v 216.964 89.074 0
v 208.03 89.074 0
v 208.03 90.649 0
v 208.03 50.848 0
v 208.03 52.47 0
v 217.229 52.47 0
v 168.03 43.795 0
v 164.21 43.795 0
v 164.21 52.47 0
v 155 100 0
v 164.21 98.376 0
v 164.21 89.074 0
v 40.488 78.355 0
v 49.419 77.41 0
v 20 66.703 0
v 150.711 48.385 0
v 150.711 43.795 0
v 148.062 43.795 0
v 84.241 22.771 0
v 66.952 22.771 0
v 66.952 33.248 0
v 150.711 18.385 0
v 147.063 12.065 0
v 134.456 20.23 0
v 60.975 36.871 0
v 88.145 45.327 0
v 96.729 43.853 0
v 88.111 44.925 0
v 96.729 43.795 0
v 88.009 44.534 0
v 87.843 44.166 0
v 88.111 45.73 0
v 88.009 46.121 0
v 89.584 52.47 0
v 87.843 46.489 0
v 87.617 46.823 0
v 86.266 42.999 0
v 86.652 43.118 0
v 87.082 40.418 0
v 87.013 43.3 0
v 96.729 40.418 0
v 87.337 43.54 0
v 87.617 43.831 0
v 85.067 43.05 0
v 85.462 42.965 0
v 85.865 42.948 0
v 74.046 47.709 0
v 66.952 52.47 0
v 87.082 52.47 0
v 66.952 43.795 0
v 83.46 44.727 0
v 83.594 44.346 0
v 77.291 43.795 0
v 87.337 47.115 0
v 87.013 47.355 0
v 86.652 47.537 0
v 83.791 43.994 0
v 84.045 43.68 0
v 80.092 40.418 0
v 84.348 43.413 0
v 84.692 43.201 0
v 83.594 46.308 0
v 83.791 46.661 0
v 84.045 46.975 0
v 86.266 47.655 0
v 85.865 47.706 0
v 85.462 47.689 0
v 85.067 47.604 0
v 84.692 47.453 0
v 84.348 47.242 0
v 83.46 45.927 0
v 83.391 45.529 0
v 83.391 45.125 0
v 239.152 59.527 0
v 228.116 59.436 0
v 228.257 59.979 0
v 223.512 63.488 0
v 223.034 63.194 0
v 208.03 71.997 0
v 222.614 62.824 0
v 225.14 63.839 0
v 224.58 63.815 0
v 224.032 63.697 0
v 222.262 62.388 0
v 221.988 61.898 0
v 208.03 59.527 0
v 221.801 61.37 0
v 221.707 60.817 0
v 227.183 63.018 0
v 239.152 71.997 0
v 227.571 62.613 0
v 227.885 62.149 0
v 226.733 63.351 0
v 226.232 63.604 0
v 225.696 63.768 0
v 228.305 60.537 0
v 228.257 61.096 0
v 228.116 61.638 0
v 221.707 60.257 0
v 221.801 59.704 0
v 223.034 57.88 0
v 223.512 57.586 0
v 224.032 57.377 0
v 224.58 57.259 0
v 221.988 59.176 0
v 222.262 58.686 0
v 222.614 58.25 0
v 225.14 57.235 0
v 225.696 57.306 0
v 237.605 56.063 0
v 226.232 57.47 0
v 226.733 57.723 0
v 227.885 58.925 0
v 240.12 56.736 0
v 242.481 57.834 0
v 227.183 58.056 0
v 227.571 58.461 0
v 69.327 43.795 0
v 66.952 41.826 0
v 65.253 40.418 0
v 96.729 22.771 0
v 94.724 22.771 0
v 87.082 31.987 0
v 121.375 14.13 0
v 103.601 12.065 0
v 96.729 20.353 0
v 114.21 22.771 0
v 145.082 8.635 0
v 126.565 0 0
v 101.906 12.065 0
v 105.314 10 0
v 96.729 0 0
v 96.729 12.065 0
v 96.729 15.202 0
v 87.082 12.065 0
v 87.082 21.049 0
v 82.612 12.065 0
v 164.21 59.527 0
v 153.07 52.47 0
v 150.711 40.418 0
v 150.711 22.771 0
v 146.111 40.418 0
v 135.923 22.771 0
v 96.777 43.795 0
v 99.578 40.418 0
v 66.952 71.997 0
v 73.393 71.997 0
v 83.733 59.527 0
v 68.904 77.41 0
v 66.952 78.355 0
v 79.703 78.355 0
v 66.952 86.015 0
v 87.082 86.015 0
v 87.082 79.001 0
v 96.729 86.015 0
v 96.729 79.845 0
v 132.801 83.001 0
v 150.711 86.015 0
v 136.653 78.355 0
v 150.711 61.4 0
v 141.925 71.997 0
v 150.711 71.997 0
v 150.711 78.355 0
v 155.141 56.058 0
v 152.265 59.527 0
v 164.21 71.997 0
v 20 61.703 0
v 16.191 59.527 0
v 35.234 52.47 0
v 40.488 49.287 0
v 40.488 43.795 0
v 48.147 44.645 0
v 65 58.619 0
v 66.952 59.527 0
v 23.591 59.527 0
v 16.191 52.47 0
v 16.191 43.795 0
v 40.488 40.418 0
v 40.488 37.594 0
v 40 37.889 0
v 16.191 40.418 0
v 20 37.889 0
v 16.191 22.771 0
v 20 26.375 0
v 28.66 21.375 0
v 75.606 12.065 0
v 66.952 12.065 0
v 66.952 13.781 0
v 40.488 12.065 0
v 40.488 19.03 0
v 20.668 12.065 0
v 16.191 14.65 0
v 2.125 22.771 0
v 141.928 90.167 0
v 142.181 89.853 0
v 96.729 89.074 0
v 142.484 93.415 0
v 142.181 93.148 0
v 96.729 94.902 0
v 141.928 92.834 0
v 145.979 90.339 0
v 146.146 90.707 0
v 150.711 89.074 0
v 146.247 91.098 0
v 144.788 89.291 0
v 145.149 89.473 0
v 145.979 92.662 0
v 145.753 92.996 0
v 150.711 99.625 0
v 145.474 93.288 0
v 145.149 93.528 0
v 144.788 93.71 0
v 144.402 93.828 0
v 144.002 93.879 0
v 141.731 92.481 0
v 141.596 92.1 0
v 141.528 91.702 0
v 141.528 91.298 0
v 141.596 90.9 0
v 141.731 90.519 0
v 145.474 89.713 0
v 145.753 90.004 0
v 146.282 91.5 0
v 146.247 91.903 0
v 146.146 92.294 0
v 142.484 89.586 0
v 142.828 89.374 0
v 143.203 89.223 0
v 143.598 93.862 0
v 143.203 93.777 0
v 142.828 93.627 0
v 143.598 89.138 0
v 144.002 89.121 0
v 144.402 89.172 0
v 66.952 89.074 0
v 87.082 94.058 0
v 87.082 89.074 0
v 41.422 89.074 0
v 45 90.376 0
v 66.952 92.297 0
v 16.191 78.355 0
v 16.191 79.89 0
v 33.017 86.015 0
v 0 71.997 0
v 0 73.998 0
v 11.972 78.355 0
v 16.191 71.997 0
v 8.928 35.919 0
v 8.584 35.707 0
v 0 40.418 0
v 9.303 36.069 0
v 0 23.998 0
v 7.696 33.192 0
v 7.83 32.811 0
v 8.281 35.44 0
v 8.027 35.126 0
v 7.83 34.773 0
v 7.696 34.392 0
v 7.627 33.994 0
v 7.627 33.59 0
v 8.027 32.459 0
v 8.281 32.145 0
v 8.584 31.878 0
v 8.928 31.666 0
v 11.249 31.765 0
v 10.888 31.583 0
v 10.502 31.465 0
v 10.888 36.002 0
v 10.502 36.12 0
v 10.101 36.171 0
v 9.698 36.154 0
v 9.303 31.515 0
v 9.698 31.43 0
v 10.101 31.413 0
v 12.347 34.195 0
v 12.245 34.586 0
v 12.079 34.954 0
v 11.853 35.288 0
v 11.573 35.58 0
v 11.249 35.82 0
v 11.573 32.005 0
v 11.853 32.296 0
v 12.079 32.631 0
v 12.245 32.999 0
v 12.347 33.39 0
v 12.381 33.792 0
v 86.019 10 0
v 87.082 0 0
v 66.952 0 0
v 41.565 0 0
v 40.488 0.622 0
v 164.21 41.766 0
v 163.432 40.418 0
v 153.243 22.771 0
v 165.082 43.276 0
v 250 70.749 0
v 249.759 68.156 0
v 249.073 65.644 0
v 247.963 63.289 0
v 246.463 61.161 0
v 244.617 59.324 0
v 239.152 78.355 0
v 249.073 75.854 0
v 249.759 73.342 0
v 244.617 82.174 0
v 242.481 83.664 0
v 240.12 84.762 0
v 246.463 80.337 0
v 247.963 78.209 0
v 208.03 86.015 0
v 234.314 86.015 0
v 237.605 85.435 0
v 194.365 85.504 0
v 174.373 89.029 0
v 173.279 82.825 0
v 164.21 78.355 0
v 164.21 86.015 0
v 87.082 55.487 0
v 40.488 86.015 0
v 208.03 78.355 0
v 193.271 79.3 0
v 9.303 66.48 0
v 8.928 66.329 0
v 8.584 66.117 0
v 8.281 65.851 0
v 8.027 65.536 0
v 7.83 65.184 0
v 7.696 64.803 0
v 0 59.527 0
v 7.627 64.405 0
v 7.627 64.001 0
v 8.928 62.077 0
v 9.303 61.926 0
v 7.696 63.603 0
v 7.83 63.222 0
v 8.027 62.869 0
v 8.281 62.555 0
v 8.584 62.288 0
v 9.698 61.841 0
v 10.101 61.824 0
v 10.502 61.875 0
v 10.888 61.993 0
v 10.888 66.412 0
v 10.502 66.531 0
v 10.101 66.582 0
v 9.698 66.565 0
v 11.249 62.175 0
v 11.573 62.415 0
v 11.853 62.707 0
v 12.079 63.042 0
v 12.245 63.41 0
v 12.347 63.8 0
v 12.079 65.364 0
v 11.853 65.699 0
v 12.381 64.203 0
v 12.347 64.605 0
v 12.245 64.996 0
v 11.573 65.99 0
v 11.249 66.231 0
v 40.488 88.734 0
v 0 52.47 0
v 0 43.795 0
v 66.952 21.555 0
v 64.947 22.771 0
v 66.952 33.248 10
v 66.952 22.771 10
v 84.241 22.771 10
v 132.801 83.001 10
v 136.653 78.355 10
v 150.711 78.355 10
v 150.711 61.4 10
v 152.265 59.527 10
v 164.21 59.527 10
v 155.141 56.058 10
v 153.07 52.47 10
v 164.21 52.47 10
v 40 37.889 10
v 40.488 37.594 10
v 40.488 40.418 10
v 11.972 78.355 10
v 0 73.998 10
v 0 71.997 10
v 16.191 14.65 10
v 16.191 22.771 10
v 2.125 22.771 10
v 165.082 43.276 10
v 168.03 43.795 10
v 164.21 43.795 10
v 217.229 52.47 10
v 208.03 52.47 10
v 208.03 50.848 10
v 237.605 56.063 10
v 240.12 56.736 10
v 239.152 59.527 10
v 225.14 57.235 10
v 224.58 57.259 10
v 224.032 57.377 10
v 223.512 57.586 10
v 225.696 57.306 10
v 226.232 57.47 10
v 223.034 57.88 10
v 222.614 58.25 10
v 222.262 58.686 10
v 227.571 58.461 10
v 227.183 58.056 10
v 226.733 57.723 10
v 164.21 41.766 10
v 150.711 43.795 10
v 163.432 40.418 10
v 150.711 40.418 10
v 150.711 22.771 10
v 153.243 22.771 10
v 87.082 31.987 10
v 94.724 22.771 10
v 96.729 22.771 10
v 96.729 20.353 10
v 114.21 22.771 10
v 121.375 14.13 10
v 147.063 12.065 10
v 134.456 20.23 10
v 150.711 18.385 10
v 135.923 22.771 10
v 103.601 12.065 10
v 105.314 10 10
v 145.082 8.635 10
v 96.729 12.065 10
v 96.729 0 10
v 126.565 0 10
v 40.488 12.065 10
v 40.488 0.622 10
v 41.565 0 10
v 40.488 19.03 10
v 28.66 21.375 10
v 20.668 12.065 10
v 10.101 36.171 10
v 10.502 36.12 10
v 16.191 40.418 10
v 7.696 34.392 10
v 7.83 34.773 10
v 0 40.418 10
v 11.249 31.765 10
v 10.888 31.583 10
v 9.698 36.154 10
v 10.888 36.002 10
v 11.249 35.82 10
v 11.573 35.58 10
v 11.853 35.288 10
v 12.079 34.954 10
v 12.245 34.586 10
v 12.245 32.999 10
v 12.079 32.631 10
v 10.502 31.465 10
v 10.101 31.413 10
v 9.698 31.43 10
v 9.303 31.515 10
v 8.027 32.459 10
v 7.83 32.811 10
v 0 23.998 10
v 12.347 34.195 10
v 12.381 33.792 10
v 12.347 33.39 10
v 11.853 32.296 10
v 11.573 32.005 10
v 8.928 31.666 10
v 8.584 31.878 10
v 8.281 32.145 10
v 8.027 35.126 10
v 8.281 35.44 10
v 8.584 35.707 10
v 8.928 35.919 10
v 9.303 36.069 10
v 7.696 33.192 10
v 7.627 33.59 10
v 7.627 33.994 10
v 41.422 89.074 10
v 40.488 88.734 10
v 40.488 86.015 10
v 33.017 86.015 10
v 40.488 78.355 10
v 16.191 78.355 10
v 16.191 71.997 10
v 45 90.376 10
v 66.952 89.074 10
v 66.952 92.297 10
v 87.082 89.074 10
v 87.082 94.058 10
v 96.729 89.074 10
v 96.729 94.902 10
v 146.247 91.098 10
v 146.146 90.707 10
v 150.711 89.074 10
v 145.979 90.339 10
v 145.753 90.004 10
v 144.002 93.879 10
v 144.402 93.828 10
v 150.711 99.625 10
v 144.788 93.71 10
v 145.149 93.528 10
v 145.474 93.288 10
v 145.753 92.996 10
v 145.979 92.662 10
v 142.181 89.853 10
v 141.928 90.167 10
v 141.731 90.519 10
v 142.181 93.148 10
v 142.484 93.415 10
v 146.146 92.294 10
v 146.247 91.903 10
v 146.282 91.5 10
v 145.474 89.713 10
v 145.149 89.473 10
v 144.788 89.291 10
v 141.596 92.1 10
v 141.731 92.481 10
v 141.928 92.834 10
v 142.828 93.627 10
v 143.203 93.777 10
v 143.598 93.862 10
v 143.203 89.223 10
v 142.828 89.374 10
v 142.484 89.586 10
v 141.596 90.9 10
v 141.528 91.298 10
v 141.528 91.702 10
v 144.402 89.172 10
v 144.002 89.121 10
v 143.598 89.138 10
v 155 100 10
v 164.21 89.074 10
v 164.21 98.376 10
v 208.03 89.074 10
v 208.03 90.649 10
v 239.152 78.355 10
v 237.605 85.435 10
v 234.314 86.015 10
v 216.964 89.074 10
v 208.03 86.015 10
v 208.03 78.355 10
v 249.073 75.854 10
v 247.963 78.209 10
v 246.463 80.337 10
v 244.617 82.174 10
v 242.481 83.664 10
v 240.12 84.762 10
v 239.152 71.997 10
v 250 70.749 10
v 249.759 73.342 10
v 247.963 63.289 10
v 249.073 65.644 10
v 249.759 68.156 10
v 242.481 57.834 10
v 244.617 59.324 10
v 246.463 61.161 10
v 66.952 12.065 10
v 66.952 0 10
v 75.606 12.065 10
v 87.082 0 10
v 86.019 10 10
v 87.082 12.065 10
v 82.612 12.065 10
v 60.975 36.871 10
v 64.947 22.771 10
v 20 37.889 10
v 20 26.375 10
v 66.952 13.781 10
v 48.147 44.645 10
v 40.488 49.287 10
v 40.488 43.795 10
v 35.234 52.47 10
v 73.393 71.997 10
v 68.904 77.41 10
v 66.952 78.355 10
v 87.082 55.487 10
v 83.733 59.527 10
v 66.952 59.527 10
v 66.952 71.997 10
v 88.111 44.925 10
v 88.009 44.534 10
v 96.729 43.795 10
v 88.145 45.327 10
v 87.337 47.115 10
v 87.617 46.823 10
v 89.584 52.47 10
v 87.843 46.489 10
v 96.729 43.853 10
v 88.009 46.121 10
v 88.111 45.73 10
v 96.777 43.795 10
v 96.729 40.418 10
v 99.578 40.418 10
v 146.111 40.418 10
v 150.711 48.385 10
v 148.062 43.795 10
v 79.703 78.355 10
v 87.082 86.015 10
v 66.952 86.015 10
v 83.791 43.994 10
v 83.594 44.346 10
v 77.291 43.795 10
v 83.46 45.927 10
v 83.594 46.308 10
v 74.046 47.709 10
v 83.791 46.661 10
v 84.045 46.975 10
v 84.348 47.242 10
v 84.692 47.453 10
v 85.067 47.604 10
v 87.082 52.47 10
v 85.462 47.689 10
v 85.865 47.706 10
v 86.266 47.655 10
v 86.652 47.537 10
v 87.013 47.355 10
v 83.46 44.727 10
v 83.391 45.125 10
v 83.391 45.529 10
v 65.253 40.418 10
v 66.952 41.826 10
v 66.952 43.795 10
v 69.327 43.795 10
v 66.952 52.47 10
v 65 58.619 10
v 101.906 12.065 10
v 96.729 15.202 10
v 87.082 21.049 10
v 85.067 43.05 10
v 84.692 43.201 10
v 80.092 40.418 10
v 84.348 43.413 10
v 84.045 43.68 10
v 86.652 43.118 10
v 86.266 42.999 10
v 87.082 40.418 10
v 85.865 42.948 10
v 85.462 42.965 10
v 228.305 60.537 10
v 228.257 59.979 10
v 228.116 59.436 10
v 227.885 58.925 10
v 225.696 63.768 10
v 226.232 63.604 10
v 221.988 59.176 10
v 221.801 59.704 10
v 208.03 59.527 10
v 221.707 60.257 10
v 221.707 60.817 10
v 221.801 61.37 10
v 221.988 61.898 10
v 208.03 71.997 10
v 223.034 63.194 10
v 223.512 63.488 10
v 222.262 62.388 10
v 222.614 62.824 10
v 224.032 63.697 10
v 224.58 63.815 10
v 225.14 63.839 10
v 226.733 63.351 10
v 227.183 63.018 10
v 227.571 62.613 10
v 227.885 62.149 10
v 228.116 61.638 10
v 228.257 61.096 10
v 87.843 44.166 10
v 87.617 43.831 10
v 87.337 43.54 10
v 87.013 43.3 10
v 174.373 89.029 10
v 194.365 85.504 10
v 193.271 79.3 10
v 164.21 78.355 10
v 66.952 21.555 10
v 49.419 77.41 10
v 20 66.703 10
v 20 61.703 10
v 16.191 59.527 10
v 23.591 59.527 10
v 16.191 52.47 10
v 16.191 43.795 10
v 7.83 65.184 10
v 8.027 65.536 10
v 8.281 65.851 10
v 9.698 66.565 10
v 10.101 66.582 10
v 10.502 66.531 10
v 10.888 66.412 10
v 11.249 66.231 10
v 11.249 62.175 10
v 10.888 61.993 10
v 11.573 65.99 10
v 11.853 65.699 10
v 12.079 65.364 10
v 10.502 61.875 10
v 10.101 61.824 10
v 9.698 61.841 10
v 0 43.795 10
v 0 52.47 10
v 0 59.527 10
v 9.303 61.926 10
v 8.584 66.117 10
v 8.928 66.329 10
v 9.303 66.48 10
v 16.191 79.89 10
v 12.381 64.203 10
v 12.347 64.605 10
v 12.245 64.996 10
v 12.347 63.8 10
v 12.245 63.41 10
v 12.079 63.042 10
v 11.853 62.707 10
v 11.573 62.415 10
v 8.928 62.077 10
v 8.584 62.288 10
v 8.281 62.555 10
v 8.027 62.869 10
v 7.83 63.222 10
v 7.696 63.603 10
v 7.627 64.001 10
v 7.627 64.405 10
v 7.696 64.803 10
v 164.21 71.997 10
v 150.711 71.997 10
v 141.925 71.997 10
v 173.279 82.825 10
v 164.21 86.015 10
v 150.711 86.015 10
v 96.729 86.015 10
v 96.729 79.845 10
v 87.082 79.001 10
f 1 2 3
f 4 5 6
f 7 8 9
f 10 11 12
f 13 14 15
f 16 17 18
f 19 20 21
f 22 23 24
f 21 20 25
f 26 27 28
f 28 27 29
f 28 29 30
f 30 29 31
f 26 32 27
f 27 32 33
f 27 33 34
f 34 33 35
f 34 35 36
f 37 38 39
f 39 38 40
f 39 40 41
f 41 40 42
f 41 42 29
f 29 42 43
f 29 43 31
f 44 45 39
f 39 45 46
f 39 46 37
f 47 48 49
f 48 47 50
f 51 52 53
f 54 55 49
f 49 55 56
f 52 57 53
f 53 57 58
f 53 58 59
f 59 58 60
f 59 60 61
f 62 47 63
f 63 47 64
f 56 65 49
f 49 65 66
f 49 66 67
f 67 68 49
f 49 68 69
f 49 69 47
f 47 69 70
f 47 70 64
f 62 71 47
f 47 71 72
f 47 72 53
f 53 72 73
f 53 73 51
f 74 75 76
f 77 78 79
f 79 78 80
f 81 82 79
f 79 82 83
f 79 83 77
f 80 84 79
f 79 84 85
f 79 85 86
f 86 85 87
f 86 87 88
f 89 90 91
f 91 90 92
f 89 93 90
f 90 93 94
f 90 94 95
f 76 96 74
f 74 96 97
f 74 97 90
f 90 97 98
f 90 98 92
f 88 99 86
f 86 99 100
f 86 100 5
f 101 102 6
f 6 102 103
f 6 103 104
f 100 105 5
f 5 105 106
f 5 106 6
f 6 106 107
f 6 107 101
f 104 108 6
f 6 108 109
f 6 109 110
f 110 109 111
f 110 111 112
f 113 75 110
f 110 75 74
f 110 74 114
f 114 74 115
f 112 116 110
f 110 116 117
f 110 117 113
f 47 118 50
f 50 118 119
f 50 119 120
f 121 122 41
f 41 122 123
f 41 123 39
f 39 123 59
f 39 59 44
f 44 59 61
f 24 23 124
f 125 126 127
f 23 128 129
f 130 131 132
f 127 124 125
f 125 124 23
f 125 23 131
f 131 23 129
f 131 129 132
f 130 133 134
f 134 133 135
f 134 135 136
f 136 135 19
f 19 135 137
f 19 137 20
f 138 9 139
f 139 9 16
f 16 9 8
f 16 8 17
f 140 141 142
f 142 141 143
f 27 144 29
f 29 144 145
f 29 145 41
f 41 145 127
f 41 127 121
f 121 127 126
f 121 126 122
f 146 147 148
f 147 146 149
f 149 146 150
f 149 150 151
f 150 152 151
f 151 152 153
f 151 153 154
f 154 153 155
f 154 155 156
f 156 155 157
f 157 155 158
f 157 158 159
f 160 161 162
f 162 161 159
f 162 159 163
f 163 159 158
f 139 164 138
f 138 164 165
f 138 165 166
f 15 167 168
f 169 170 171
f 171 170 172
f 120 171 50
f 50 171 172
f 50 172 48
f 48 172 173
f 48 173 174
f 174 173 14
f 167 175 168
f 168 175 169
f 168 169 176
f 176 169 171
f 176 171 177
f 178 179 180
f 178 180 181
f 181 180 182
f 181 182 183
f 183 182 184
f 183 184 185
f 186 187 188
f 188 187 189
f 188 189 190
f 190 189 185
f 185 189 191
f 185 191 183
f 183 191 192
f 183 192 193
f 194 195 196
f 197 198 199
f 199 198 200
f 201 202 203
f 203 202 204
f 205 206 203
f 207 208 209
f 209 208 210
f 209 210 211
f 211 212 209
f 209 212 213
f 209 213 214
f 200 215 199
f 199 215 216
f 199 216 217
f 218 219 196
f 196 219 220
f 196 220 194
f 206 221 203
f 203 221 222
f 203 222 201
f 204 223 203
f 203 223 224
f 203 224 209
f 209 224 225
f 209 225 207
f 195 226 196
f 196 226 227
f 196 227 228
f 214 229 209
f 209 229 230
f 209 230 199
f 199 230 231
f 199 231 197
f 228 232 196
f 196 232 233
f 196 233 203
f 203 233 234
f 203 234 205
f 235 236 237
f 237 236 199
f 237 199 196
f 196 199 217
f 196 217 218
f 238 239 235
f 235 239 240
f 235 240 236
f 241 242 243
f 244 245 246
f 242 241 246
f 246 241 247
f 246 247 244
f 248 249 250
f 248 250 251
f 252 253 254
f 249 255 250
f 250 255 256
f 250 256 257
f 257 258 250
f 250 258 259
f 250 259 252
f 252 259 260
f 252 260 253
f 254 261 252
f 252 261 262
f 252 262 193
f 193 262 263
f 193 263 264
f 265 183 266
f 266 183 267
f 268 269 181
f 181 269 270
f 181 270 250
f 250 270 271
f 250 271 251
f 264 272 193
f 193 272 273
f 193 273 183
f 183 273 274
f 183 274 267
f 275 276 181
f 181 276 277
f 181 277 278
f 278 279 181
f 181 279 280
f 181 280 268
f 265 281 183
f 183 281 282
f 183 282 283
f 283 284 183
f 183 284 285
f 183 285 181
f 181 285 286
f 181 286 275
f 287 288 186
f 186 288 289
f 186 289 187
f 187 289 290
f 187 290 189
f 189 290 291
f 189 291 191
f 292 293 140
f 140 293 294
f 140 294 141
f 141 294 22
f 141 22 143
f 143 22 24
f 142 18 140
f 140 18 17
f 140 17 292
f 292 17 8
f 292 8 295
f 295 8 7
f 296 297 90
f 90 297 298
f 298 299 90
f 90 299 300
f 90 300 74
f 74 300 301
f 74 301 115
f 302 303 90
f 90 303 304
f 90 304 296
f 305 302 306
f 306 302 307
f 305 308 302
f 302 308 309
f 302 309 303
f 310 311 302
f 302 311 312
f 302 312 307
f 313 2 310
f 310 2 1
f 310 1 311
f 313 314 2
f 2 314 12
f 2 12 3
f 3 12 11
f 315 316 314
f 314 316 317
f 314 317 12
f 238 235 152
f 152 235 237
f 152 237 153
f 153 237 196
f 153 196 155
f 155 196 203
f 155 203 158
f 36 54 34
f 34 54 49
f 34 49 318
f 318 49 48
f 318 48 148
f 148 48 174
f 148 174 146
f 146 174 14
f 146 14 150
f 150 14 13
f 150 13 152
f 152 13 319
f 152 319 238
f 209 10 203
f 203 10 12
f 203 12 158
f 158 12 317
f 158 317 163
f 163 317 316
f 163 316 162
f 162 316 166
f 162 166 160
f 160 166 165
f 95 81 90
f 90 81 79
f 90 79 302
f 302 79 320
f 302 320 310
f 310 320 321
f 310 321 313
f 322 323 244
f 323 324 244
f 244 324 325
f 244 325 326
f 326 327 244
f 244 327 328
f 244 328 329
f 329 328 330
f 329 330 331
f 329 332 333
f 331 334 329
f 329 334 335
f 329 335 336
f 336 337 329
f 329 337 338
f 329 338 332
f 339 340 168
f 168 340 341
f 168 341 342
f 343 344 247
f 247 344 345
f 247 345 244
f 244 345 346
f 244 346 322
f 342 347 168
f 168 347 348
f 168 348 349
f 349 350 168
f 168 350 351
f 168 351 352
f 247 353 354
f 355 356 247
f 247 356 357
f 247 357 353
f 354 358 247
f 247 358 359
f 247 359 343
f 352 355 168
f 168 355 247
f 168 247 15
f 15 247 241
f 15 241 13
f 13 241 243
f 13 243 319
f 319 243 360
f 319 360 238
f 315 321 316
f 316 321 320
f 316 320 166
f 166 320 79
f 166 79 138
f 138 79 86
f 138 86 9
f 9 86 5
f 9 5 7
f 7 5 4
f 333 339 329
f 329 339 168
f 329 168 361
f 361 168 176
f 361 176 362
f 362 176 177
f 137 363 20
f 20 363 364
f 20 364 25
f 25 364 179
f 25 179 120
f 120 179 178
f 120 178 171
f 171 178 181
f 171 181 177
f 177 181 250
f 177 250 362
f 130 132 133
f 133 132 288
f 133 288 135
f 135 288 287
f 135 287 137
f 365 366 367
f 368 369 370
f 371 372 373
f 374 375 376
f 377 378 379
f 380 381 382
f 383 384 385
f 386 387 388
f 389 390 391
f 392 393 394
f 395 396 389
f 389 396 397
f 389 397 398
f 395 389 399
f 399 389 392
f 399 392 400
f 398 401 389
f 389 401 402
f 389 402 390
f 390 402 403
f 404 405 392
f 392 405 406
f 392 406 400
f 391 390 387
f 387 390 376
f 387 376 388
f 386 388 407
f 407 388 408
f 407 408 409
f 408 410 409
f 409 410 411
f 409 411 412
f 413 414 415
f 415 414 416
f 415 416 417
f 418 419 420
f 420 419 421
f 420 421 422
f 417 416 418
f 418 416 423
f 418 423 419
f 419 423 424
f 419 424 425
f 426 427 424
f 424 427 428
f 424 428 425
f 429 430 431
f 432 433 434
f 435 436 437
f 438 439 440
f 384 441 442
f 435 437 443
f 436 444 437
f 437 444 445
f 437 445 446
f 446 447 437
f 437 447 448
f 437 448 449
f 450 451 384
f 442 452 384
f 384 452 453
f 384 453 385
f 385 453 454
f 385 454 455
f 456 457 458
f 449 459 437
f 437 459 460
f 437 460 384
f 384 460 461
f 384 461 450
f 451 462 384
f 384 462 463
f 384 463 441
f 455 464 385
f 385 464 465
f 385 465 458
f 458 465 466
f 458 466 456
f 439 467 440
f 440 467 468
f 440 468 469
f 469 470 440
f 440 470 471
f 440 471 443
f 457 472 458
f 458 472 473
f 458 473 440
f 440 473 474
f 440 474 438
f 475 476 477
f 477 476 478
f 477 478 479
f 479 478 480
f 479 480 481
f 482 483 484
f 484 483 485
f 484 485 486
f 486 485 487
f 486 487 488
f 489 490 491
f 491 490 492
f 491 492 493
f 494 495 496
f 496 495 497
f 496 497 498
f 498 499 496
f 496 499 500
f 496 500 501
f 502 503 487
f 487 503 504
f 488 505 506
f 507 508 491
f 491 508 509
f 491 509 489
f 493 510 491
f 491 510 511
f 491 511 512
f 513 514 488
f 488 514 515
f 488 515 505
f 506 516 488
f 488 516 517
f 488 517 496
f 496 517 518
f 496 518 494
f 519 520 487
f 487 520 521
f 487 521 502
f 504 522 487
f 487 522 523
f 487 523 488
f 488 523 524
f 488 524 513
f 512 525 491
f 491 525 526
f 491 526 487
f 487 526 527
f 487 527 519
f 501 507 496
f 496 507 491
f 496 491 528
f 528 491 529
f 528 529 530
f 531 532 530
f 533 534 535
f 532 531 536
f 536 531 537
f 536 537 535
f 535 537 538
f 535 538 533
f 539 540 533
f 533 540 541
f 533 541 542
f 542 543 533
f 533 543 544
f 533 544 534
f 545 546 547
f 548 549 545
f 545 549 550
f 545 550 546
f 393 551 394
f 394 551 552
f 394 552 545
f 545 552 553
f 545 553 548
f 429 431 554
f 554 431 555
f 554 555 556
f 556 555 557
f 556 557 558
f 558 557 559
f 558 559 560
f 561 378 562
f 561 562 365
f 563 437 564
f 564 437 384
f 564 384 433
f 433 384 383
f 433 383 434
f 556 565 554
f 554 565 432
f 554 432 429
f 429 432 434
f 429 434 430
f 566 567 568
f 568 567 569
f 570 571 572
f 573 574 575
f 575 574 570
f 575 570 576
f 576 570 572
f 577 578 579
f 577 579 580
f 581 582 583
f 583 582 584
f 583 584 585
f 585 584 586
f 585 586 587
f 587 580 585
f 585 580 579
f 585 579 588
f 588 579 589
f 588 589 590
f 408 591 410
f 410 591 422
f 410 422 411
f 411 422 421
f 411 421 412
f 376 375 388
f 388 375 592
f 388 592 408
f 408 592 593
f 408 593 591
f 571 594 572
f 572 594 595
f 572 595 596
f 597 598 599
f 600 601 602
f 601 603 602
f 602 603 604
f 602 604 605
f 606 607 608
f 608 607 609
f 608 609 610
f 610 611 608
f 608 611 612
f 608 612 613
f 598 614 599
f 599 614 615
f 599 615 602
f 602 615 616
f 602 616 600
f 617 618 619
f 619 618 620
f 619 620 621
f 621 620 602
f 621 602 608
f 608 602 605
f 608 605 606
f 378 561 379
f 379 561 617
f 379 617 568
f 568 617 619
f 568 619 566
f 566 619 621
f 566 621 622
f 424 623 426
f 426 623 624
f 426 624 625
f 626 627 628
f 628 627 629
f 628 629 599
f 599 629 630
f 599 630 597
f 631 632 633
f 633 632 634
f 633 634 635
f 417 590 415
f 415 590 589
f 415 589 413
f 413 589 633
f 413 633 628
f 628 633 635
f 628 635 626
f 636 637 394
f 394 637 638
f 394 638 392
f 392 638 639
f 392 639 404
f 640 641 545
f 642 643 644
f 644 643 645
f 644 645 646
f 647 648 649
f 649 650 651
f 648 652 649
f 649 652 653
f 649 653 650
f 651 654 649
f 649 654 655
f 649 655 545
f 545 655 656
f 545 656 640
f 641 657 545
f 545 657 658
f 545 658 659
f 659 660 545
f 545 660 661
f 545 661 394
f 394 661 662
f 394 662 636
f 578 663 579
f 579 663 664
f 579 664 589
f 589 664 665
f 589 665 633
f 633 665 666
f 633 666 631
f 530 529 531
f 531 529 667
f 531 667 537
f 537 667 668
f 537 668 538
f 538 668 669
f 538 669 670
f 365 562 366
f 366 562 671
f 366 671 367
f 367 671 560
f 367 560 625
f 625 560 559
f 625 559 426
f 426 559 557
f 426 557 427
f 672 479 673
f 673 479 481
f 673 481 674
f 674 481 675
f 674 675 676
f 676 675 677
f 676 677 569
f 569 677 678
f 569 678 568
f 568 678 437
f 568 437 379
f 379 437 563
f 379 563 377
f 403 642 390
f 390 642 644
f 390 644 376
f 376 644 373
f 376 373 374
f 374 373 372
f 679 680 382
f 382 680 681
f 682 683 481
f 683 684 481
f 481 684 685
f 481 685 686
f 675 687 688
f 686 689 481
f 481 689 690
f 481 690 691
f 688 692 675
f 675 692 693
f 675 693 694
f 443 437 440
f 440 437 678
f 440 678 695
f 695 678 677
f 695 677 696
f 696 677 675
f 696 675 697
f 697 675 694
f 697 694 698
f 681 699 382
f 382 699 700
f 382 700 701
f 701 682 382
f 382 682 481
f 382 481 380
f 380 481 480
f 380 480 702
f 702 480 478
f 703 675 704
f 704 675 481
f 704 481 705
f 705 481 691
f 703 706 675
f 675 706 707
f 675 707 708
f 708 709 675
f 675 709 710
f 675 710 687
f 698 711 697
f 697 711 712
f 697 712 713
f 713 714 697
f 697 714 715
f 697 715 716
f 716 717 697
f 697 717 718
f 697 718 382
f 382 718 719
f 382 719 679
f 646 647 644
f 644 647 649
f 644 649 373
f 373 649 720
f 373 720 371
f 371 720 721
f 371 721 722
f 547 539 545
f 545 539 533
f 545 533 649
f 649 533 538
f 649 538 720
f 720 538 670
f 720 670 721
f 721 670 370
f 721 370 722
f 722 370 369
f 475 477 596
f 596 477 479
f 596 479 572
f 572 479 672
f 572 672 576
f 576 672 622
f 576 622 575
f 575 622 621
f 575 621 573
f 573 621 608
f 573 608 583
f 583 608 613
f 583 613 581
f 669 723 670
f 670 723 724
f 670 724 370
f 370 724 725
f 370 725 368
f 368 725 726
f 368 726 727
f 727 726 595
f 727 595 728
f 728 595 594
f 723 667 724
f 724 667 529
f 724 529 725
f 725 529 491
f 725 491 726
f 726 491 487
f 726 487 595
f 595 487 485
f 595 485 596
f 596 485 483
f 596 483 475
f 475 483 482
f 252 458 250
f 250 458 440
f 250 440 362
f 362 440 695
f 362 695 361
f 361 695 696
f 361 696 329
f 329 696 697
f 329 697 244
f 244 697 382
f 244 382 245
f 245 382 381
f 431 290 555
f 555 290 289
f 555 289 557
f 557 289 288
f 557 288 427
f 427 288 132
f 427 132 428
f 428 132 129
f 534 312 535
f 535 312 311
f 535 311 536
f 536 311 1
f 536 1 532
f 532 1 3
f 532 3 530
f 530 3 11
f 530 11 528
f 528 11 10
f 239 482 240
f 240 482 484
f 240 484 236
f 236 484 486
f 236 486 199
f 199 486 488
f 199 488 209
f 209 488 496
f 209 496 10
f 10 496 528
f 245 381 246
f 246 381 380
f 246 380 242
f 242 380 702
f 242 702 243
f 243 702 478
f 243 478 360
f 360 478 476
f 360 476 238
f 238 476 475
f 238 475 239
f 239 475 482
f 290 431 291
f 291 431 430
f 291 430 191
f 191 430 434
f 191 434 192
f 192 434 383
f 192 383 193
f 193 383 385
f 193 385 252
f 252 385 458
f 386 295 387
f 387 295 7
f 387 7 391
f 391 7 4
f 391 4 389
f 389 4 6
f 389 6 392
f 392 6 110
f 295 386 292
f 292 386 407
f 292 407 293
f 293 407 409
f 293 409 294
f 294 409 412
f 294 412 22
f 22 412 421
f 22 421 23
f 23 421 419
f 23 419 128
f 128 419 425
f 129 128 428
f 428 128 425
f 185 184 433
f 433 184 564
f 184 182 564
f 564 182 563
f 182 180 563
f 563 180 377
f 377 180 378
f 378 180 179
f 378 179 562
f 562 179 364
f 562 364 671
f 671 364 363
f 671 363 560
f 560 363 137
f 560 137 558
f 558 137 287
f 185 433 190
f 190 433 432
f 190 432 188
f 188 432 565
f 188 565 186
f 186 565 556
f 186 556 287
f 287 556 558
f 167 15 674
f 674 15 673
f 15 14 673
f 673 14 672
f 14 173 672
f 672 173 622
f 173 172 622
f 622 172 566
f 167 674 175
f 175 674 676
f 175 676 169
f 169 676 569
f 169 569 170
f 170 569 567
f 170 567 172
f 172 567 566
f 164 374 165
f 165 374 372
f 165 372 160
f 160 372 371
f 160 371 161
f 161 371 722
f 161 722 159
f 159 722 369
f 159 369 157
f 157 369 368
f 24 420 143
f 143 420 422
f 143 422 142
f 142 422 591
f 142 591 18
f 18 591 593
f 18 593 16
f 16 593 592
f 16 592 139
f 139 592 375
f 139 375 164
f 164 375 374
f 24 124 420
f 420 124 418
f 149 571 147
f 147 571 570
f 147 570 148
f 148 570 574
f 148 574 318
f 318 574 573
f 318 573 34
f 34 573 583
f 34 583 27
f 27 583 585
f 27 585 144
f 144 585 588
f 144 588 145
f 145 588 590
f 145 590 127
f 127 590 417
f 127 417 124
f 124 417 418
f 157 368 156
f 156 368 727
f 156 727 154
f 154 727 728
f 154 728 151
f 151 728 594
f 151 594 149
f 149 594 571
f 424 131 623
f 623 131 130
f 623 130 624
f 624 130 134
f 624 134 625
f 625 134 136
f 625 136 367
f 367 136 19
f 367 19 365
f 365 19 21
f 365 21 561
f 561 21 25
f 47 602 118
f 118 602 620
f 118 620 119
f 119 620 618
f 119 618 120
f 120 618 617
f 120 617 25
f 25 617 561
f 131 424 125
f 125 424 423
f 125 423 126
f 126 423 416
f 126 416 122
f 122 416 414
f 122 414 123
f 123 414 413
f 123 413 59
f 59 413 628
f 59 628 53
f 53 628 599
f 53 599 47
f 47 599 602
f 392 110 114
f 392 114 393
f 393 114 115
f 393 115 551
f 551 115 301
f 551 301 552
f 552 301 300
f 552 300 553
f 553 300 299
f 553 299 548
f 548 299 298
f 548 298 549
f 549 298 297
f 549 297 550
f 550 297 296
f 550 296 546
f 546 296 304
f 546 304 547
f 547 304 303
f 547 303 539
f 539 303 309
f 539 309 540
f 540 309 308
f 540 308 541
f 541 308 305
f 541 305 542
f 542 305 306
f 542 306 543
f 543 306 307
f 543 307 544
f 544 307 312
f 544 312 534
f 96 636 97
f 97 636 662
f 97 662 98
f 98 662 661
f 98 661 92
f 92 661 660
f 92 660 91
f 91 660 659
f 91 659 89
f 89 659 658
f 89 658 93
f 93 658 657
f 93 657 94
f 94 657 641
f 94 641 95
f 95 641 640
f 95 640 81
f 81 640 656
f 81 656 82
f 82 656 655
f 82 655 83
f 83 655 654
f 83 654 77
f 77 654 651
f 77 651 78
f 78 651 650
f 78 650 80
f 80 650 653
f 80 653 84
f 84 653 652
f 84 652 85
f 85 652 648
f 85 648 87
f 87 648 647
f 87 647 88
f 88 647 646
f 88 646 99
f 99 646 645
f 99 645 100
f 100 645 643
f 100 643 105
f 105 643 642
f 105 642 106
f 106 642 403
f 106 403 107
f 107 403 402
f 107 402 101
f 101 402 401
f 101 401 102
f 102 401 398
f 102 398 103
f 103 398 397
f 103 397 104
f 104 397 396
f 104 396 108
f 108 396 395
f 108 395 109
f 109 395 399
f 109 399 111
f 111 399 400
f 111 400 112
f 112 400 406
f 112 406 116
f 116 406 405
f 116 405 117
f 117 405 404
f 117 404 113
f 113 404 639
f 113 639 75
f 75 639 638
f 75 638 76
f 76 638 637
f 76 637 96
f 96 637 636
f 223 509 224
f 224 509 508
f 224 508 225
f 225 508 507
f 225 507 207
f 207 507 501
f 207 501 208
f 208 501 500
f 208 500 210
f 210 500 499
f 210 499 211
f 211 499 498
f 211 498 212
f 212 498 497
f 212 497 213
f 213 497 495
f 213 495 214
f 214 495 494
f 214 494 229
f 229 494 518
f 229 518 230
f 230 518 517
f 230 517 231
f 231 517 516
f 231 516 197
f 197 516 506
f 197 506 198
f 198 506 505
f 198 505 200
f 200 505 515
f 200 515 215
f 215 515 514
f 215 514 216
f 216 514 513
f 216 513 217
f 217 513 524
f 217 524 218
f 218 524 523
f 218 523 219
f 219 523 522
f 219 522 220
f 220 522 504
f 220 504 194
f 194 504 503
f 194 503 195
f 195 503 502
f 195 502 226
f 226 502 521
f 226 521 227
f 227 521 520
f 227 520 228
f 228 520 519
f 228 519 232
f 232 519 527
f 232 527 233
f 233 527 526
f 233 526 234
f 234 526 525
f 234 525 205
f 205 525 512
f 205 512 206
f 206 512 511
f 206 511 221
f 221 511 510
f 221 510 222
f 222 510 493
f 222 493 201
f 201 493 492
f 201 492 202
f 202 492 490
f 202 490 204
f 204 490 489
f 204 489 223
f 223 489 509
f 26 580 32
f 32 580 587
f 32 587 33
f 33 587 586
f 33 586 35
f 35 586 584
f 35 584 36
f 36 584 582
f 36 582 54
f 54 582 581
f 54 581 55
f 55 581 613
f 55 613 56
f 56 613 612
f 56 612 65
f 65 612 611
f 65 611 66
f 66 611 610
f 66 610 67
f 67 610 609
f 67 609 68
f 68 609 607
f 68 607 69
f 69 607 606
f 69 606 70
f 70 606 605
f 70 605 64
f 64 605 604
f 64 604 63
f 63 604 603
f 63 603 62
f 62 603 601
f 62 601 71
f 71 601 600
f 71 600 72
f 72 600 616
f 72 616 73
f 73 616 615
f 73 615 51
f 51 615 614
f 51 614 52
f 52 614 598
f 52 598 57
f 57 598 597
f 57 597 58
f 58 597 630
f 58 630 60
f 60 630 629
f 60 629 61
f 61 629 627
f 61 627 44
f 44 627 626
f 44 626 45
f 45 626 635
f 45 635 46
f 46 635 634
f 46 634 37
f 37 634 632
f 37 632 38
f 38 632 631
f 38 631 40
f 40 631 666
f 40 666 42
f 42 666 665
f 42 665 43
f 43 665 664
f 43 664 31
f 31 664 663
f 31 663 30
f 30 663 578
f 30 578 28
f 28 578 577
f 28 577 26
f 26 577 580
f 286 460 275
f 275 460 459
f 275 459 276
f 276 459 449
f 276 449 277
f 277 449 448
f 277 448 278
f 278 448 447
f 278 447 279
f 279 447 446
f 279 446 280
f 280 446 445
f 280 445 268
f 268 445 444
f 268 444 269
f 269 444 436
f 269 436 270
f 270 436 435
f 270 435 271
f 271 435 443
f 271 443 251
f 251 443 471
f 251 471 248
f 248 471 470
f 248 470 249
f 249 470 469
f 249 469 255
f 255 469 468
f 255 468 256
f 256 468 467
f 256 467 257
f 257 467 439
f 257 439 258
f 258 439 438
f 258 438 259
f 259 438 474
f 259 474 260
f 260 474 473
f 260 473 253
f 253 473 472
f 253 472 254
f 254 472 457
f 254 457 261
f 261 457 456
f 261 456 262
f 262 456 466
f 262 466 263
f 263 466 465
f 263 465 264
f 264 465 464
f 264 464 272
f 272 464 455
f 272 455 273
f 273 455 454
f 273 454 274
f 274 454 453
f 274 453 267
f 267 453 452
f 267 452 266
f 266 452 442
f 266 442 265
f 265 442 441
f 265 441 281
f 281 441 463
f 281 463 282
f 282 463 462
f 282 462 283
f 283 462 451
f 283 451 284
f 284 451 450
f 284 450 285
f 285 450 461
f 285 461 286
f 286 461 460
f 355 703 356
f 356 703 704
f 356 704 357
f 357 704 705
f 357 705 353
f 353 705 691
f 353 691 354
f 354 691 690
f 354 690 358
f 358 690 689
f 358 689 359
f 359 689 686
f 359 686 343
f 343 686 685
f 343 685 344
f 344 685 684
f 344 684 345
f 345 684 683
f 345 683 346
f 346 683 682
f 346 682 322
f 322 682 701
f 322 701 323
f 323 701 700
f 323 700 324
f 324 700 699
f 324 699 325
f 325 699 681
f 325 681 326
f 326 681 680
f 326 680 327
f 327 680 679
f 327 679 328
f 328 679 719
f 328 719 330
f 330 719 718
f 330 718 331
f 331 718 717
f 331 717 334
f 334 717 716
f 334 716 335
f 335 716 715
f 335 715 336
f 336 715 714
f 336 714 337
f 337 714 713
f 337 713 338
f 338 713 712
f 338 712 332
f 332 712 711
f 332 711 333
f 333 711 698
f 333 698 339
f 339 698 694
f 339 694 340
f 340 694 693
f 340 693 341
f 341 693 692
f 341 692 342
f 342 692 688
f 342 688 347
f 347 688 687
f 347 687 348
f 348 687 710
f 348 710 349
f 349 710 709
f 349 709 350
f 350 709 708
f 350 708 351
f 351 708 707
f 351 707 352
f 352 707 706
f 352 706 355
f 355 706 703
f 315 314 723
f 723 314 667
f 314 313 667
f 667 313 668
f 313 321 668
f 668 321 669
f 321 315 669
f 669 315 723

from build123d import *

# Parameters (mm, degrees)
ESQUISSE1_W                             = 250
ESQUISSE1_H                             = 100
BOSS_EXTRU_1_DEPTH                      = 10
ESQUISSE2_OUTSIDE_W                     = 305.888
ESQUISSE2_OUTSIDE_H                     = 155.888
ENL_V_MAT_EXTRU_1_DEPTH                 = 270.443871706
ENL_V_MAT_EXTRU_2_DEPTH                 = 270.443871706
CONG_1_R                                = 15
ESQUISSE4_R                             = 3.305
ENL_V_MAT_EXTRU_3_DEPTH                 = 270.443640324
PER_AGE_POUR_CROUS_AUTO_BLOQUANTS_300_D = 4.7625
PER_AGE_POUR_CROUS_AUTO_BLOQUANTS_3_2_D = 4.7625
ENL_V_MAT_EXTRU_4_DEPTH                 = 10


with BuildPart() as part:
    # Esquisse1 → Boss.-Extru.1 (new body)
    with BuildSketch(Plane.XY):
        with Locations((125, 50)):
            Rectangle(ESQUISSE1_W, ESQUISSE1_H)
    extrude(amount=BOSS_EXTRU_1_DEPTH)

    # Esquisse2 outside → Enlèv. mat.-Extru.1 (cut, through all)
    with BuildSketch(Plane.XY.offset(10)):
        with Locations((125, 50)):
            Rectangle(ESQUISSE2_OUTSIDE_W, ESQUISSE2_OUTSIDE_H)
        Polygon((250, 83.248936833), (155, 100), (45, 90.376247012), (0, 73.99758647), (0, 23.99758647), (41.565039025, 0), (126.565039025, 0), (145.081949739, 8.634577271), (165.081949739, 43.275593423), (250, 58.248936833), align=None, mode=Mode.SUBTRACT)
    extrude(amount=-ENL_V_MAT_EXTRU_1_DEPTH, mode=Mode.SUBTRACT)

    # Esquisse3 → Enlèv. mat.-Extru.2 (cut, through all)
    with BuildSketch(Plane.XY.offset(10)):
        Polygon((134.456309599, 20.230428685), (155.141265019, 56.057822426), (132.800938883, 83.000536248), (68.90430085, 77.410304783), (121.374682449, 14.130365764), align=None)
        Polygon((105.313706387, 10), (74.046358719, 47.708813875), (60.975248723, 36.870527049), align=None)
        Polygon((20, 26.375291272), (20, 37.889147432), (40, 37.889147432), (86.019260451, 10), (28.660254038, 21.375291272), align=None)
        Polygon((20, 61.702841638), (48.147118965, 44.644785014), (65, 58.618836074), (49.418513209, 77.410304783), (20, 66.702841638), align=None)
    extrude(amount=-ENL_V_MAT_EXTRU_2_DEPTH, mode=Mode.SUBTRACT)

    # Congé1
    # the kernel refuses this fillet: 15 mm, written as the material it takes off along each edge
    with BuildSketch(Plane(origin=(250, 83.248936833, 41.466236169), x_dir=(-0.9848077530122094, 0.17364817766692334, 0), z_dir=(0, 0, -1))) as cong_1_piece_1:
        with BuildLine():
            CenterArc((CONG_1_R * 0.839099631177, -CONG_1_R), CONG_1_R, 90, 80)
            Line((-CONG_1_R * 0.145708121835, -CONG_1_R * 0.826351822333), (0, 0))
            Line((0, 0), (CONG_1_R * 0.839099631177, 0))
        make_face()
    extrude(amount=72.932472338, mode=Mode.SUBTRACT)
    with BuildSketch(Plane(origin=(250, 58.248936833, 41.466236169), x_dir=(-0.984807753012208, -0.17364817766693091, 0), z_dir=(0, 0, -1))) as cong_1_piece_2:
        with BuildLine():
            CenterArc((CONG_1_R * 0.839099631177, CONG_1_R), CONG_1_R, 190, 80)
            Line((-CONG_1_R * 0.145708121835, CONG_1_R * 0.826351822333), (0, 0))
            Line((0, 0), (CONG_1_R * 0.839099631177, 0))
        make_face()
    extrude(amount=72.932472338, mode=Mode.SUBTRACT)

    # Esquisse4 → Enlèv. mat.-Extru.3 (cut, through all)
    with BuildSketch(Plane.XY.offset(10)):
        with Locations((224.999750621, 60.537155323)):
            Circle(ESQUISSE4_R)
    extrude(amount=-ENL_V_MAT_EXTRU_3_DEPTH, mode=Mode.SUBTRACT)

    # Per_age pour _crous auto-bloquants 300 (through all)
    with Locations(Plane.XY.offset(10)):
        with Locations((85.764023291, 45.327215553), (143.900469441, 91.500268124)):
            Hole(PER_AGE_POUR_CROUS_AUTO_BLOQUANTS_300_D / 2)

    # Per_age pour _crous auto-bloquants 3 2 (through all)
    with Locations(Plane.XY.offset(10)):
        with Locations((10, 64.202841638), (10, 33.792331302)):
            Hole(PER_AGE_POUR_CROUS_AUTO_BLOQUANTS_3_2_D / 2)

    # Esquisse10 → Enlèv. mat.-Extru.4 (cut)
    with BuildSketch(Plane.XY.offset(10)):
        Polygon((174.373076709, 89.029229885), (173.279093189, 82.824941041), (193.270690575, 79.299883034), (194.364674095, 85.504171878), align=None)
    extrude(amount=-ENL_V_MAT_EXTRU_4_DEPTH, mode=Mode.SUBTRACT)


solid = part.part
